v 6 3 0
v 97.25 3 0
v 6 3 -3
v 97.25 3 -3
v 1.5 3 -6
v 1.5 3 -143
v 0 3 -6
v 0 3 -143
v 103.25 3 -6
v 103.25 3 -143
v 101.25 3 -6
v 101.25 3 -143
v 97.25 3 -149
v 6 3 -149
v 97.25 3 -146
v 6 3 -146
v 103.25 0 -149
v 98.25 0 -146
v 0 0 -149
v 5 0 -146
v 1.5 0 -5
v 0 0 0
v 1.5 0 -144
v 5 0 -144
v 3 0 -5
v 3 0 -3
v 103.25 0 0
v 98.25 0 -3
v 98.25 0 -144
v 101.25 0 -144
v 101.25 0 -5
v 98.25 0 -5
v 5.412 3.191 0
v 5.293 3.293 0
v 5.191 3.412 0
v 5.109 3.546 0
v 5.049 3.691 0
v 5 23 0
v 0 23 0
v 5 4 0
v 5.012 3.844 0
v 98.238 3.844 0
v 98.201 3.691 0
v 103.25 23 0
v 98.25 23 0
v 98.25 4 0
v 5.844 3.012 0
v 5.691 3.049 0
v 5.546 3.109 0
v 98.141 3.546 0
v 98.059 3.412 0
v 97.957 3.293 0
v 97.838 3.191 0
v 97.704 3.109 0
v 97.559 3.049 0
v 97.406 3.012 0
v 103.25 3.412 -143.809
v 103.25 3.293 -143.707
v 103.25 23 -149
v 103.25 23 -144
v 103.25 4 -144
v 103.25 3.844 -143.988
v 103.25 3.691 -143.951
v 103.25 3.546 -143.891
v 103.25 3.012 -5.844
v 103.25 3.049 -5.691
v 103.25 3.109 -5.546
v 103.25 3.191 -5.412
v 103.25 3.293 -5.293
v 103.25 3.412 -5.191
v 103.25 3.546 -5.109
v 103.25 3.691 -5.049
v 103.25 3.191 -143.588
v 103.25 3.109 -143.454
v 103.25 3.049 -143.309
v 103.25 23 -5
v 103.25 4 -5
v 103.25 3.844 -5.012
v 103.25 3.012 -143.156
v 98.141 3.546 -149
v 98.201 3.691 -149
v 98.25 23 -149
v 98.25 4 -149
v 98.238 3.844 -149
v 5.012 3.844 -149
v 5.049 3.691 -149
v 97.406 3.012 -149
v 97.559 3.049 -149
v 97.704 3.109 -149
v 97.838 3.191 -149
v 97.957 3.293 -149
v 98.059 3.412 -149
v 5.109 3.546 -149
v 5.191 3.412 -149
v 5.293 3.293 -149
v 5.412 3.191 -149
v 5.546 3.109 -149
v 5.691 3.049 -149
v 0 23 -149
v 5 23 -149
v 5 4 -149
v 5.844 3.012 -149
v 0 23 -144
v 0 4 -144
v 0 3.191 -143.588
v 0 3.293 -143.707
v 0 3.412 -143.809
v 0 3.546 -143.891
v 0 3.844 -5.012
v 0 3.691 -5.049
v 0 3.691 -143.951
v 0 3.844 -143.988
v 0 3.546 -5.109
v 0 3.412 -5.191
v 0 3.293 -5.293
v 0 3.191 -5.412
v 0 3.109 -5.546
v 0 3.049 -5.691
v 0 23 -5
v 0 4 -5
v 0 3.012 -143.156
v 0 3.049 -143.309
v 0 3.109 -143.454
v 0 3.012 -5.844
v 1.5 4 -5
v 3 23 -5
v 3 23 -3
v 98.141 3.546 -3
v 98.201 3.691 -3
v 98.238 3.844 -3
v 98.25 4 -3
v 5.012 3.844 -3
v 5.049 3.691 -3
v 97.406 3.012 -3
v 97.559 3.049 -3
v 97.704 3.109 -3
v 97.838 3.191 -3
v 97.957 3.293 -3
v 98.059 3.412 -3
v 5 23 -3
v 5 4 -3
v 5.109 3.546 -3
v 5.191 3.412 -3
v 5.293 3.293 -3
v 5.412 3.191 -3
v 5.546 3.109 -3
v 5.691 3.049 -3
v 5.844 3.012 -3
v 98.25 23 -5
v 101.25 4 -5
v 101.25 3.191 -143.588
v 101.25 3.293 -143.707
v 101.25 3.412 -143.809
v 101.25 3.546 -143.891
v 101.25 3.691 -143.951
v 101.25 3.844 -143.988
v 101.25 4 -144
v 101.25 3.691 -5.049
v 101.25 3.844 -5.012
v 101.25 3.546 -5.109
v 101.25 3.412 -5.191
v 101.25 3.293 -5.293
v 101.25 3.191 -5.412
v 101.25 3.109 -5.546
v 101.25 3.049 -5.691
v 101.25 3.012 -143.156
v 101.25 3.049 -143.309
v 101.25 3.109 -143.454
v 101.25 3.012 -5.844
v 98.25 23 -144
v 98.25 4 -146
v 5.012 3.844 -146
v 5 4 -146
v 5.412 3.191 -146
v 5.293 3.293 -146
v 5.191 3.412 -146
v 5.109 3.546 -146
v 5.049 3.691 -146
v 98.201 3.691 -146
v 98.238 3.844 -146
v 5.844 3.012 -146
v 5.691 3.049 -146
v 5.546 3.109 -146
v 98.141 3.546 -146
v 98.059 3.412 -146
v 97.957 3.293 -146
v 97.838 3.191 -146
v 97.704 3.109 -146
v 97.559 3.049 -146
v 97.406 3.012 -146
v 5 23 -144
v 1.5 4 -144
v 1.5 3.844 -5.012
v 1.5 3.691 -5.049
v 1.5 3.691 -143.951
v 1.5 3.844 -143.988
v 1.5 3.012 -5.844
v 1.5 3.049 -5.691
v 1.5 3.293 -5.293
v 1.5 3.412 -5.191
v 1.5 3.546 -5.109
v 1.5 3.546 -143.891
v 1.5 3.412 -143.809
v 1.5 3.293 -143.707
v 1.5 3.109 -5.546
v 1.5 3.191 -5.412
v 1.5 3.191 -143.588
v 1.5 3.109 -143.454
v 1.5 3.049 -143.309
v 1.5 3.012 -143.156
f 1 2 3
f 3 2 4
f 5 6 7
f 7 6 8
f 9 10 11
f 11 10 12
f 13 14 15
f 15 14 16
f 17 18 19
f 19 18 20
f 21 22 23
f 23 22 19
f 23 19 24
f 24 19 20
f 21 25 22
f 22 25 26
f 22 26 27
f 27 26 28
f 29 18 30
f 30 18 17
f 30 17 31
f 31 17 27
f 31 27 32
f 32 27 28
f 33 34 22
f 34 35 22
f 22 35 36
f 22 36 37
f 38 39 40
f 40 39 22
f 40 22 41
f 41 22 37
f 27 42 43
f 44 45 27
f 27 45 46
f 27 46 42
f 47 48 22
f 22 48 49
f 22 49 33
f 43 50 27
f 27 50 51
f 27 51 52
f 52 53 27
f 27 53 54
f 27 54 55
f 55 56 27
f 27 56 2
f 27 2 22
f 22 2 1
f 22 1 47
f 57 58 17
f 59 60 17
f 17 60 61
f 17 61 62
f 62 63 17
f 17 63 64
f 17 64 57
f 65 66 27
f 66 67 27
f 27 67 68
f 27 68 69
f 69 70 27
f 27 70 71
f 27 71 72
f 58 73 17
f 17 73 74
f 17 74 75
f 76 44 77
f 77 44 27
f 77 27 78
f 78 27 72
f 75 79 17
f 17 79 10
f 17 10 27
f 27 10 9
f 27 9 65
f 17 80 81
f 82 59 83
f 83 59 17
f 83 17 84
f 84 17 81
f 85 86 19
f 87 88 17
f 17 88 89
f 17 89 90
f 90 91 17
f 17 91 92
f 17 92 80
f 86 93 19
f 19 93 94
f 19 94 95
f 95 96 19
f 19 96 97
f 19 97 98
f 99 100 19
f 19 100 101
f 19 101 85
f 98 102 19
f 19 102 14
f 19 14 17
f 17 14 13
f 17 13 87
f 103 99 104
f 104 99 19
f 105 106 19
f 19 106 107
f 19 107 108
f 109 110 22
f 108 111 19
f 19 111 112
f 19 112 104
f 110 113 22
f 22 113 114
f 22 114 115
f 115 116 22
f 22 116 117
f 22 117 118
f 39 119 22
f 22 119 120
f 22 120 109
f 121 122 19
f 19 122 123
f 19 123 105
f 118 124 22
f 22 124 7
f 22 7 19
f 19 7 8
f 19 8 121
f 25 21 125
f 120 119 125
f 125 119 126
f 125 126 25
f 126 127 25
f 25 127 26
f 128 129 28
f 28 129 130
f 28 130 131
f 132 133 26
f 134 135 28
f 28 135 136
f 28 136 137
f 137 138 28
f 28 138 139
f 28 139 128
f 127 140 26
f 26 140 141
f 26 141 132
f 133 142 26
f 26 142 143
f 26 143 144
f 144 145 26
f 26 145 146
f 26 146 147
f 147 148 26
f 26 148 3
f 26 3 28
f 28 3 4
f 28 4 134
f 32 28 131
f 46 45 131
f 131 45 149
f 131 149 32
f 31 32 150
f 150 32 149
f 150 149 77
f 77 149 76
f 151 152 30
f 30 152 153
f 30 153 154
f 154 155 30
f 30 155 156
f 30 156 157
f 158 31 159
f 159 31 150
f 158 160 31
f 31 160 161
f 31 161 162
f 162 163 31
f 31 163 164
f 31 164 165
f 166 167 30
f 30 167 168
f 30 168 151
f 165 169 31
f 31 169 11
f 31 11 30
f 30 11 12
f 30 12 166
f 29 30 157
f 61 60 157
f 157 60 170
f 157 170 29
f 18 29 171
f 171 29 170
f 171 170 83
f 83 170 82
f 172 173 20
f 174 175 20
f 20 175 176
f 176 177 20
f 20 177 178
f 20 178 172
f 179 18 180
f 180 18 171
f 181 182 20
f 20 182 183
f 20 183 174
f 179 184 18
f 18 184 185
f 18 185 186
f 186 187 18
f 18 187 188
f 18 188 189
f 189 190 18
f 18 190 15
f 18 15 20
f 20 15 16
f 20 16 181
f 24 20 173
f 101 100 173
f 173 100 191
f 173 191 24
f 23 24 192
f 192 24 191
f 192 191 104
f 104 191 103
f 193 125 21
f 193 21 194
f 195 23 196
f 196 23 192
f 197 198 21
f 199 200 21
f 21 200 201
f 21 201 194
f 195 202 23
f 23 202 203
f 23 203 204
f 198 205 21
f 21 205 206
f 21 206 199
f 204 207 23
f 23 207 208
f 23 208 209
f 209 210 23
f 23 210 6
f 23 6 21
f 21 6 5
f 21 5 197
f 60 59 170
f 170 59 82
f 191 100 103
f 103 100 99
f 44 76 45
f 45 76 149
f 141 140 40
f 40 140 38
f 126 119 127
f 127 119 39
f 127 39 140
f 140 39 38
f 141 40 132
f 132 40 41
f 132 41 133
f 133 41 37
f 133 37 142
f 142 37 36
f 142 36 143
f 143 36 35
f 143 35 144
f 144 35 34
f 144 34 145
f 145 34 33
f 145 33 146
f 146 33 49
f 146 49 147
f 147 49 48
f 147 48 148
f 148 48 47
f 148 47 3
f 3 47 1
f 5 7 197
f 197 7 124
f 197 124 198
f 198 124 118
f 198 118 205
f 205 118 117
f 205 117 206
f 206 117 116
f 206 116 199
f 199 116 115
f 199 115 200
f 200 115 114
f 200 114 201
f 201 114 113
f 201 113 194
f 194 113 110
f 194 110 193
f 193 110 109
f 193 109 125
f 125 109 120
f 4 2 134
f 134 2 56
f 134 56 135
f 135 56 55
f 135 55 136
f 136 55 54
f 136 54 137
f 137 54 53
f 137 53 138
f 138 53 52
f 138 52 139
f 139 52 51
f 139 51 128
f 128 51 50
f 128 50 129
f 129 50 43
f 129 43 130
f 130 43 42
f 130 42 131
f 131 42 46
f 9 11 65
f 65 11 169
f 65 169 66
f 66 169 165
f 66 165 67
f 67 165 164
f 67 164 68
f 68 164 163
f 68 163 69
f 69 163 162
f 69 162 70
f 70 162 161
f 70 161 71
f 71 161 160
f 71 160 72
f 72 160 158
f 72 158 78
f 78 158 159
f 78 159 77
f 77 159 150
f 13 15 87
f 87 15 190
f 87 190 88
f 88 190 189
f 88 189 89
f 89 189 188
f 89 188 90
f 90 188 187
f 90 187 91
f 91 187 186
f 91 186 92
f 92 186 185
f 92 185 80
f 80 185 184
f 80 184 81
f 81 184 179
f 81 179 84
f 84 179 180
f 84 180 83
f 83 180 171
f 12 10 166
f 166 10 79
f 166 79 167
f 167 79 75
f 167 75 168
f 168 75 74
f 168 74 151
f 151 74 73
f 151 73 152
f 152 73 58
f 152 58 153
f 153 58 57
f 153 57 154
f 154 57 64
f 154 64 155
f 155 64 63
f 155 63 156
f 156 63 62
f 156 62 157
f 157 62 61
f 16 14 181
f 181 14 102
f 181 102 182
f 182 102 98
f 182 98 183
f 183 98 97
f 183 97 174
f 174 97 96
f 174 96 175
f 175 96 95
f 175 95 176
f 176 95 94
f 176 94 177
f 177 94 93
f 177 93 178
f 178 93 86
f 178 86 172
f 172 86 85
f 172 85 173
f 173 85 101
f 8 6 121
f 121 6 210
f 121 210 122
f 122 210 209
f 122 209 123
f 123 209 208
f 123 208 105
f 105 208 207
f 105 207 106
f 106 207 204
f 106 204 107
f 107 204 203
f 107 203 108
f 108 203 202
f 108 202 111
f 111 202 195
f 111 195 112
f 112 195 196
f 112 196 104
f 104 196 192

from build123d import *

# Parameters (mm, degrees)
BOSS_EXTRUDE1_DEPTH = 3
SKETCH2_W           = 5
SKETCH2_H           = 5
BOSS_EXTRUDE2_DEPTH = 20
FILLET1_R           = 1


with BuildPart() as part:
    # Sketch1 → Boss-Extrude1 (new body)
    with BuildSketch(Plane(origin=(0, 0, 0), x_dir=(1, 0, 0), z_dir=(0, 1, 0))):
        Polygon((0, 0), (0, 149), (5, 149), (103.25, 149), (103.25, 0), align=None)
        Polygon((98.25, 146), (5, 146), (5, 144), (1.5, 144), (1.5, 5), (3, 5), (3, 3), (5, 3), (98.25, 3), (98.25, 5), (101.25, 5), (101.25, 144), (98.25, 144), align=None, mode=Mode.SUBTRACT)
    extrude(amount=BOSS_EXTRUDE1_DEPTH)

    # Sketch2 → Boss-Extrude2 (add)
    with BuildSketch(Plane(origin=(0, 3, 0), x_dir=(1, 0, 0), z_dir=(0, 1, 0))):
        Polygon((0, 0), (5, 0), (5, 3), (3, 3), (3, 5), (0, 5), align=None)
        with Locations((100.75, 146.5)):
            Rectangle(SKETCH2_W, SKETCH2_H)
        with Locations((2.5, 146.5)):
            Rectangle(SKETCH2_W, SKETCH2_H)
        with Locations((100.75, 2.5)):
            Rectangle(SKETCH2_W, SKETCH2_H)
    extrude(amount=BOSS_EXTRUDE2_DEPTH)

    # Fillet1
    fillet1_edges = [part.edges().sort_by_distance(p)[0] for p in [
        (0.75, 3, -5),
        (102.25, 3, -144),
        (98.25, 3, -147.5),
        (0.75, 3, -144),
        (5, 3, -147.5),
        (98.25, 3, -1.5),
        (102.25, 3, -5),
        (5, 3, -1.5),
    ]]
    fillet(fillet1_edges, radius=FILLET1_R)


solid = part.part
